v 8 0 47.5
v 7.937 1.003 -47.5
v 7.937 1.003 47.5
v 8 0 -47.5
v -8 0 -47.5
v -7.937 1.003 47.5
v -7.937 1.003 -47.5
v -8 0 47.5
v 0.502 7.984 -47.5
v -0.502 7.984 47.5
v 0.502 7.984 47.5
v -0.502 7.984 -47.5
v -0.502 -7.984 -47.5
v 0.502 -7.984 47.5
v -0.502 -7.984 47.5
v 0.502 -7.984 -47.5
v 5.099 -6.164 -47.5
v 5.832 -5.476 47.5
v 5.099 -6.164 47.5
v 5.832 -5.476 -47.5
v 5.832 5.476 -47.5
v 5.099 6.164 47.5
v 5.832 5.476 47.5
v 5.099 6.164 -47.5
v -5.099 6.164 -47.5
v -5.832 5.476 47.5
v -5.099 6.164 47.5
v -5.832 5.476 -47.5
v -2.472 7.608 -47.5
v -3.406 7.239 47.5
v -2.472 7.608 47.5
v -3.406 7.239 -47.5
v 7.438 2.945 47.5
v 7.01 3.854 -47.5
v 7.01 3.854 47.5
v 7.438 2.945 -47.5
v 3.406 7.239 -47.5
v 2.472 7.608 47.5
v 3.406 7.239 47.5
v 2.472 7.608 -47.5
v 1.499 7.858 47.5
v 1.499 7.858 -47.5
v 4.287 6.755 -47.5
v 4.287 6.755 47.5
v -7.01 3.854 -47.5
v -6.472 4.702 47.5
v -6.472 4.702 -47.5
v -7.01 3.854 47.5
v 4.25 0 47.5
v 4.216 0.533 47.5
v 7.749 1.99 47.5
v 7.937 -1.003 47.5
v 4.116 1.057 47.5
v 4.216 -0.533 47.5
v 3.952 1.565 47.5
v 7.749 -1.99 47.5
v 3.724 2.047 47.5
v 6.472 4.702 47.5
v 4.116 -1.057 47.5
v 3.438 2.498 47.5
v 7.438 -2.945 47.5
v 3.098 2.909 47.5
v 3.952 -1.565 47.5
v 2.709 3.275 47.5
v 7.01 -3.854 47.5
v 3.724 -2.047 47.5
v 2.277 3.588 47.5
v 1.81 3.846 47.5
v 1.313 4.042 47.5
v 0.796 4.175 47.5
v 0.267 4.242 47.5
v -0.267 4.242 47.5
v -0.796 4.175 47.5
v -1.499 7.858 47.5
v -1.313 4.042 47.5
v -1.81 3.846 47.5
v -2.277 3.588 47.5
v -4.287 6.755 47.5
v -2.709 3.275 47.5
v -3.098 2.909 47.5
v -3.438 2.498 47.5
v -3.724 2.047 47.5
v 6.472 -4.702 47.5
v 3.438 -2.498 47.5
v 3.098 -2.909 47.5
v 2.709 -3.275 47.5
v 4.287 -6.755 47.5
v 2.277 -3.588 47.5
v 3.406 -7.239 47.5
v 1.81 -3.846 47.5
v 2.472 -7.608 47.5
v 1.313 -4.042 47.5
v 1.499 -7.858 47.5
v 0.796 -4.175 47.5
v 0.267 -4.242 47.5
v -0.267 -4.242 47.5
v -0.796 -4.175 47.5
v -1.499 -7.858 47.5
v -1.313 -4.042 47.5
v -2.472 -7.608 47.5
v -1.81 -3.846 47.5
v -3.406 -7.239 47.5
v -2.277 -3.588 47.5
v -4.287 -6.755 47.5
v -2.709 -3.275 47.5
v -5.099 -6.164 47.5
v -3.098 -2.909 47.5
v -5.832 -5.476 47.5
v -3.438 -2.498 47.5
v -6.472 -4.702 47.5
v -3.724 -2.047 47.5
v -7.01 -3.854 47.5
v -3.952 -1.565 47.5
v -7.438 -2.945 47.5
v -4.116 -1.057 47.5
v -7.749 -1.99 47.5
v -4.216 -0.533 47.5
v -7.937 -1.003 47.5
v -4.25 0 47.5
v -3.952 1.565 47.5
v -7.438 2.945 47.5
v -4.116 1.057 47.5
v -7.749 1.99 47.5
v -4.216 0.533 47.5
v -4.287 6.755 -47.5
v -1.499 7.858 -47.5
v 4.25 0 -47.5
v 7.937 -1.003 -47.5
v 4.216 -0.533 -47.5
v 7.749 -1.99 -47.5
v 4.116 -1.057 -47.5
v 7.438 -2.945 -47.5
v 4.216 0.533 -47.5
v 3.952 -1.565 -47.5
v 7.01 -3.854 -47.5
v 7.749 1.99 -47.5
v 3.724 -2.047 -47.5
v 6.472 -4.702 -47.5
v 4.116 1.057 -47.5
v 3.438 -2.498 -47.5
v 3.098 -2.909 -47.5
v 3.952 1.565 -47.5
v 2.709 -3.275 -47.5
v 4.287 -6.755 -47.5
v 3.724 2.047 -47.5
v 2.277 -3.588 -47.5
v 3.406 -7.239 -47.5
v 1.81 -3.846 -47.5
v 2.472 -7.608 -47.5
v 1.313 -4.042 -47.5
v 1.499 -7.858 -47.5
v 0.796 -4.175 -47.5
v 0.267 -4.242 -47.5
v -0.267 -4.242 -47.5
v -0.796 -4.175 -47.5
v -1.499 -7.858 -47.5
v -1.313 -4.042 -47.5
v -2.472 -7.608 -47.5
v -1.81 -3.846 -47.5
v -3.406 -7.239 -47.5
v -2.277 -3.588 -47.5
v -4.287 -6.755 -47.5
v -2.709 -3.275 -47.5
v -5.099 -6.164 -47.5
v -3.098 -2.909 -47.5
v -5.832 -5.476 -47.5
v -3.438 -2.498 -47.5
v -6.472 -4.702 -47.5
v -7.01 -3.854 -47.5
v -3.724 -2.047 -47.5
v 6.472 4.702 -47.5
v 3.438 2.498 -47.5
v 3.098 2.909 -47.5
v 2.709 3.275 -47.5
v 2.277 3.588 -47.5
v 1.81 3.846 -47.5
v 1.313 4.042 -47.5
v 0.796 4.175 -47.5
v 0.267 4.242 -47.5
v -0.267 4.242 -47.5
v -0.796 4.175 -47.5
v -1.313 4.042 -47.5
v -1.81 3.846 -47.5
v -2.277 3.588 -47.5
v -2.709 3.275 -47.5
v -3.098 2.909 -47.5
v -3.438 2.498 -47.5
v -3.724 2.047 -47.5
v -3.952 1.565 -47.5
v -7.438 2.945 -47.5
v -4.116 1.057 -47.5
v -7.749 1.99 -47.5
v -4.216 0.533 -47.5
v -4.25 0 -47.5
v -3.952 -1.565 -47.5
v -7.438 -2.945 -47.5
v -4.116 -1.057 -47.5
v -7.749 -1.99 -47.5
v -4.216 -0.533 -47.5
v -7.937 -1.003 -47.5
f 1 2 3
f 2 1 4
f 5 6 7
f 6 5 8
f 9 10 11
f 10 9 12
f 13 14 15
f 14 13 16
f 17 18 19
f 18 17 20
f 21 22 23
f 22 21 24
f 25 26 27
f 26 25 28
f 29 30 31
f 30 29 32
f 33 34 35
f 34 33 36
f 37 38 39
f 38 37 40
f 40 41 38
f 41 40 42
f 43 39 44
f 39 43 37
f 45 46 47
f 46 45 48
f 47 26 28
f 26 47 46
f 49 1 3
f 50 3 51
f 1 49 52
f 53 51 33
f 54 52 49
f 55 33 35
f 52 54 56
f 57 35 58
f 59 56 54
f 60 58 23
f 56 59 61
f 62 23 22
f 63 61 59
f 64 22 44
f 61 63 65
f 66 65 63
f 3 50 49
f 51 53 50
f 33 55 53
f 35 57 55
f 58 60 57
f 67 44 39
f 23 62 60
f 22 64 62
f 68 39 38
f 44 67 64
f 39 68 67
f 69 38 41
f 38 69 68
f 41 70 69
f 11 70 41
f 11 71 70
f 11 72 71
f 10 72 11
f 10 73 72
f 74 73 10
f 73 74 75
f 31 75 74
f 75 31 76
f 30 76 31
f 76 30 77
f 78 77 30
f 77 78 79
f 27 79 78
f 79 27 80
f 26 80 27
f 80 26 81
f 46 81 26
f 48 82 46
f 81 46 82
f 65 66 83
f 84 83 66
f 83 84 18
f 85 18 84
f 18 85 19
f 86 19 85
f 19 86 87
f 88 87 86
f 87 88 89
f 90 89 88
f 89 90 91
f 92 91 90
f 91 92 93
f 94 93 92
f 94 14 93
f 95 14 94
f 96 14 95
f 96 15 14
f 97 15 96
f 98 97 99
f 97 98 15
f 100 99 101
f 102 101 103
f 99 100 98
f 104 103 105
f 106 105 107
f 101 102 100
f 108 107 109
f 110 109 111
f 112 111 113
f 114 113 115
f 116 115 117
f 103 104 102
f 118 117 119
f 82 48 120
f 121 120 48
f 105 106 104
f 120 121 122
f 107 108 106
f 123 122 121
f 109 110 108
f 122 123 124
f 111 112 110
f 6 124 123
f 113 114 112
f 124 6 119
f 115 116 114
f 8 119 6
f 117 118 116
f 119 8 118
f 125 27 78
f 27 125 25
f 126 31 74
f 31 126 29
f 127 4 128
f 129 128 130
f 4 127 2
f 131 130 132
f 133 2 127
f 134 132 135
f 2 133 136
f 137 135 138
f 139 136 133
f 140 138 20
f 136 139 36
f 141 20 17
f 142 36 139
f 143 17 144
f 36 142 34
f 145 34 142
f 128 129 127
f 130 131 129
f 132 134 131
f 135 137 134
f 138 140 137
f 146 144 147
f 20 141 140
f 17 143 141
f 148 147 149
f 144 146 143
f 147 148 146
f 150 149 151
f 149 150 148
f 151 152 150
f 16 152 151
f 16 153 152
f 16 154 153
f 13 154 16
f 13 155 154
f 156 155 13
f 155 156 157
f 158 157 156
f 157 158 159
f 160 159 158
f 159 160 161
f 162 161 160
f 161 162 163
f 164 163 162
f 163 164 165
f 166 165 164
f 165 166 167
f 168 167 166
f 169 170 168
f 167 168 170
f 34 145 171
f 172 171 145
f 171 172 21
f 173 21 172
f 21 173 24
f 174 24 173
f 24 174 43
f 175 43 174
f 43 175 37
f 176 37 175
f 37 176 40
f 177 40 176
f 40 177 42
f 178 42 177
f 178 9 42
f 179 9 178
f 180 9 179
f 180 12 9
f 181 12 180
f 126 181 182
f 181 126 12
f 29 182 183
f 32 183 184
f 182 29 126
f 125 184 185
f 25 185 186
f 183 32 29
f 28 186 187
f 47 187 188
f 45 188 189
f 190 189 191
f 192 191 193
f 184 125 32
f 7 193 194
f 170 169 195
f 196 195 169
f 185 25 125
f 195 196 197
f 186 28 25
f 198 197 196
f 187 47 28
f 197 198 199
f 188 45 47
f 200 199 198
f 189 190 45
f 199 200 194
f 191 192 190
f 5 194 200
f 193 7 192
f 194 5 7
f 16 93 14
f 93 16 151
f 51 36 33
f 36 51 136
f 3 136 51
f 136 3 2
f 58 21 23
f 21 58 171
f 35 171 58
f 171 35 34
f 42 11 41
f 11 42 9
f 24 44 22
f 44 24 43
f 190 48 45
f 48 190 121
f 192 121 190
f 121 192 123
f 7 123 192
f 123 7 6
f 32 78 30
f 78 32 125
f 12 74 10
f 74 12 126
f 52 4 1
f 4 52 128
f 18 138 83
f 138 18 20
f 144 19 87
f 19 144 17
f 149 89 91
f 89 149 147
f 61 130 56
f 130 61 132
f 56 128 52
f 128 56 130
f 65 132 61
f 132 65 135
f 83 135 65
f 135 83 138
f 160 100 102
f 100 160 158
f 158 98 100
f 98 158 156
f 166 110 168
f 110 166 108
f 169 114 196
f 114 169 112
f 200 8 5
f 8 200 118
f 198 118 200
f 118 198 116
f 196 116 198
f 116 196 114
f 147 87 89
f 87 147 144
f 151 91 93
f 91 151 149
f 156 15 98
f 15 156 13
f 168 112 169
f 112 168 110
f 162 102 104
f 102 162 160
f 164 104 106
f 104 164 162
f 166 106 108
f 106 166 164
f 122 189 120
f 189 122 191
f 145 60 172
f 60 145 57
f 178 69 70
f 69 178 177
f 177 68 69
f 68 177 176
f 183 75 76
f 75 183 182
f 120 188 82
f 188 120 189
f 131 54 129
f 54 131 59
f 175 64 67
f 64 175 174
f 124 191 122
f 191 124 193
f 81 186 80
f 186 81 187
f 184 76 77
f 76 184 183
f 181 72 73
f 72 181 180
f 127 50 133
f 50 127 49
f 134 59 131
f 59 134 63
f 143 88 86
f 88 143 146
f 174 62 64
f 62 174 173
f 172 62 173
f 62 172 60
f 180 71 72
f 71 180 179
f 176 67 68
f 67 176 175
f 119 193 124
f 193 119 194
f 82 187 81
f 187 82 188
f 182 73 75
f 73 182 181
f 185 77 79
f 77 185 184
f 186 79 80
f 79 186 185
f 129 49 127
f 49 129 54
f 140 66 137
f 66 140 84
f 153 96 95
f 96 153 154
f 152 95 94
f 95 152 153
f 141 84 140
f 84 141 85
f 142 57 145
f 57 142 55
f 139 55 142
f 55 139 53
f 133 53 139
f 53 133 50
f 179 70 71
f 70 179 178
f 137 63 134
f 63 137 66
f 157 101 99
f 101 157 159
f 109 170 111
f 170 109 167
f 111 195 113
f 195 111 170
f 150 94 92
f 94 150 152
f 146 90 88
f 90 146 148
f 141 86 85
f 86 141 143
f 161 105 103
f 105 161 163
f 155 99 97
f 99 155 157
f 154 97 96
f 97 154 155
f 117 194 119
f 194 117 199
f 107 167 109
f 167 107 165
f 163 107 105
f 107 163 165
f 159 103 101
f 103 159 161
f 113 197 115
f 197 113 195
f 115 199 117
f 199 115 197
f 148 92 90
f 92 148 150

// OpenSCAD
$fn = 50;


difference() {
	union() {
		translate(v = [0, 0, -47.5000000000]) {
			cylinder(h = 95, r = 8.0000000000);
		}
	}
	union() {
		translate(v = [0, 0, -100.0000000000]) {
			cylinder(h = 200, r = 4.2500000000);
		}
	}
}
